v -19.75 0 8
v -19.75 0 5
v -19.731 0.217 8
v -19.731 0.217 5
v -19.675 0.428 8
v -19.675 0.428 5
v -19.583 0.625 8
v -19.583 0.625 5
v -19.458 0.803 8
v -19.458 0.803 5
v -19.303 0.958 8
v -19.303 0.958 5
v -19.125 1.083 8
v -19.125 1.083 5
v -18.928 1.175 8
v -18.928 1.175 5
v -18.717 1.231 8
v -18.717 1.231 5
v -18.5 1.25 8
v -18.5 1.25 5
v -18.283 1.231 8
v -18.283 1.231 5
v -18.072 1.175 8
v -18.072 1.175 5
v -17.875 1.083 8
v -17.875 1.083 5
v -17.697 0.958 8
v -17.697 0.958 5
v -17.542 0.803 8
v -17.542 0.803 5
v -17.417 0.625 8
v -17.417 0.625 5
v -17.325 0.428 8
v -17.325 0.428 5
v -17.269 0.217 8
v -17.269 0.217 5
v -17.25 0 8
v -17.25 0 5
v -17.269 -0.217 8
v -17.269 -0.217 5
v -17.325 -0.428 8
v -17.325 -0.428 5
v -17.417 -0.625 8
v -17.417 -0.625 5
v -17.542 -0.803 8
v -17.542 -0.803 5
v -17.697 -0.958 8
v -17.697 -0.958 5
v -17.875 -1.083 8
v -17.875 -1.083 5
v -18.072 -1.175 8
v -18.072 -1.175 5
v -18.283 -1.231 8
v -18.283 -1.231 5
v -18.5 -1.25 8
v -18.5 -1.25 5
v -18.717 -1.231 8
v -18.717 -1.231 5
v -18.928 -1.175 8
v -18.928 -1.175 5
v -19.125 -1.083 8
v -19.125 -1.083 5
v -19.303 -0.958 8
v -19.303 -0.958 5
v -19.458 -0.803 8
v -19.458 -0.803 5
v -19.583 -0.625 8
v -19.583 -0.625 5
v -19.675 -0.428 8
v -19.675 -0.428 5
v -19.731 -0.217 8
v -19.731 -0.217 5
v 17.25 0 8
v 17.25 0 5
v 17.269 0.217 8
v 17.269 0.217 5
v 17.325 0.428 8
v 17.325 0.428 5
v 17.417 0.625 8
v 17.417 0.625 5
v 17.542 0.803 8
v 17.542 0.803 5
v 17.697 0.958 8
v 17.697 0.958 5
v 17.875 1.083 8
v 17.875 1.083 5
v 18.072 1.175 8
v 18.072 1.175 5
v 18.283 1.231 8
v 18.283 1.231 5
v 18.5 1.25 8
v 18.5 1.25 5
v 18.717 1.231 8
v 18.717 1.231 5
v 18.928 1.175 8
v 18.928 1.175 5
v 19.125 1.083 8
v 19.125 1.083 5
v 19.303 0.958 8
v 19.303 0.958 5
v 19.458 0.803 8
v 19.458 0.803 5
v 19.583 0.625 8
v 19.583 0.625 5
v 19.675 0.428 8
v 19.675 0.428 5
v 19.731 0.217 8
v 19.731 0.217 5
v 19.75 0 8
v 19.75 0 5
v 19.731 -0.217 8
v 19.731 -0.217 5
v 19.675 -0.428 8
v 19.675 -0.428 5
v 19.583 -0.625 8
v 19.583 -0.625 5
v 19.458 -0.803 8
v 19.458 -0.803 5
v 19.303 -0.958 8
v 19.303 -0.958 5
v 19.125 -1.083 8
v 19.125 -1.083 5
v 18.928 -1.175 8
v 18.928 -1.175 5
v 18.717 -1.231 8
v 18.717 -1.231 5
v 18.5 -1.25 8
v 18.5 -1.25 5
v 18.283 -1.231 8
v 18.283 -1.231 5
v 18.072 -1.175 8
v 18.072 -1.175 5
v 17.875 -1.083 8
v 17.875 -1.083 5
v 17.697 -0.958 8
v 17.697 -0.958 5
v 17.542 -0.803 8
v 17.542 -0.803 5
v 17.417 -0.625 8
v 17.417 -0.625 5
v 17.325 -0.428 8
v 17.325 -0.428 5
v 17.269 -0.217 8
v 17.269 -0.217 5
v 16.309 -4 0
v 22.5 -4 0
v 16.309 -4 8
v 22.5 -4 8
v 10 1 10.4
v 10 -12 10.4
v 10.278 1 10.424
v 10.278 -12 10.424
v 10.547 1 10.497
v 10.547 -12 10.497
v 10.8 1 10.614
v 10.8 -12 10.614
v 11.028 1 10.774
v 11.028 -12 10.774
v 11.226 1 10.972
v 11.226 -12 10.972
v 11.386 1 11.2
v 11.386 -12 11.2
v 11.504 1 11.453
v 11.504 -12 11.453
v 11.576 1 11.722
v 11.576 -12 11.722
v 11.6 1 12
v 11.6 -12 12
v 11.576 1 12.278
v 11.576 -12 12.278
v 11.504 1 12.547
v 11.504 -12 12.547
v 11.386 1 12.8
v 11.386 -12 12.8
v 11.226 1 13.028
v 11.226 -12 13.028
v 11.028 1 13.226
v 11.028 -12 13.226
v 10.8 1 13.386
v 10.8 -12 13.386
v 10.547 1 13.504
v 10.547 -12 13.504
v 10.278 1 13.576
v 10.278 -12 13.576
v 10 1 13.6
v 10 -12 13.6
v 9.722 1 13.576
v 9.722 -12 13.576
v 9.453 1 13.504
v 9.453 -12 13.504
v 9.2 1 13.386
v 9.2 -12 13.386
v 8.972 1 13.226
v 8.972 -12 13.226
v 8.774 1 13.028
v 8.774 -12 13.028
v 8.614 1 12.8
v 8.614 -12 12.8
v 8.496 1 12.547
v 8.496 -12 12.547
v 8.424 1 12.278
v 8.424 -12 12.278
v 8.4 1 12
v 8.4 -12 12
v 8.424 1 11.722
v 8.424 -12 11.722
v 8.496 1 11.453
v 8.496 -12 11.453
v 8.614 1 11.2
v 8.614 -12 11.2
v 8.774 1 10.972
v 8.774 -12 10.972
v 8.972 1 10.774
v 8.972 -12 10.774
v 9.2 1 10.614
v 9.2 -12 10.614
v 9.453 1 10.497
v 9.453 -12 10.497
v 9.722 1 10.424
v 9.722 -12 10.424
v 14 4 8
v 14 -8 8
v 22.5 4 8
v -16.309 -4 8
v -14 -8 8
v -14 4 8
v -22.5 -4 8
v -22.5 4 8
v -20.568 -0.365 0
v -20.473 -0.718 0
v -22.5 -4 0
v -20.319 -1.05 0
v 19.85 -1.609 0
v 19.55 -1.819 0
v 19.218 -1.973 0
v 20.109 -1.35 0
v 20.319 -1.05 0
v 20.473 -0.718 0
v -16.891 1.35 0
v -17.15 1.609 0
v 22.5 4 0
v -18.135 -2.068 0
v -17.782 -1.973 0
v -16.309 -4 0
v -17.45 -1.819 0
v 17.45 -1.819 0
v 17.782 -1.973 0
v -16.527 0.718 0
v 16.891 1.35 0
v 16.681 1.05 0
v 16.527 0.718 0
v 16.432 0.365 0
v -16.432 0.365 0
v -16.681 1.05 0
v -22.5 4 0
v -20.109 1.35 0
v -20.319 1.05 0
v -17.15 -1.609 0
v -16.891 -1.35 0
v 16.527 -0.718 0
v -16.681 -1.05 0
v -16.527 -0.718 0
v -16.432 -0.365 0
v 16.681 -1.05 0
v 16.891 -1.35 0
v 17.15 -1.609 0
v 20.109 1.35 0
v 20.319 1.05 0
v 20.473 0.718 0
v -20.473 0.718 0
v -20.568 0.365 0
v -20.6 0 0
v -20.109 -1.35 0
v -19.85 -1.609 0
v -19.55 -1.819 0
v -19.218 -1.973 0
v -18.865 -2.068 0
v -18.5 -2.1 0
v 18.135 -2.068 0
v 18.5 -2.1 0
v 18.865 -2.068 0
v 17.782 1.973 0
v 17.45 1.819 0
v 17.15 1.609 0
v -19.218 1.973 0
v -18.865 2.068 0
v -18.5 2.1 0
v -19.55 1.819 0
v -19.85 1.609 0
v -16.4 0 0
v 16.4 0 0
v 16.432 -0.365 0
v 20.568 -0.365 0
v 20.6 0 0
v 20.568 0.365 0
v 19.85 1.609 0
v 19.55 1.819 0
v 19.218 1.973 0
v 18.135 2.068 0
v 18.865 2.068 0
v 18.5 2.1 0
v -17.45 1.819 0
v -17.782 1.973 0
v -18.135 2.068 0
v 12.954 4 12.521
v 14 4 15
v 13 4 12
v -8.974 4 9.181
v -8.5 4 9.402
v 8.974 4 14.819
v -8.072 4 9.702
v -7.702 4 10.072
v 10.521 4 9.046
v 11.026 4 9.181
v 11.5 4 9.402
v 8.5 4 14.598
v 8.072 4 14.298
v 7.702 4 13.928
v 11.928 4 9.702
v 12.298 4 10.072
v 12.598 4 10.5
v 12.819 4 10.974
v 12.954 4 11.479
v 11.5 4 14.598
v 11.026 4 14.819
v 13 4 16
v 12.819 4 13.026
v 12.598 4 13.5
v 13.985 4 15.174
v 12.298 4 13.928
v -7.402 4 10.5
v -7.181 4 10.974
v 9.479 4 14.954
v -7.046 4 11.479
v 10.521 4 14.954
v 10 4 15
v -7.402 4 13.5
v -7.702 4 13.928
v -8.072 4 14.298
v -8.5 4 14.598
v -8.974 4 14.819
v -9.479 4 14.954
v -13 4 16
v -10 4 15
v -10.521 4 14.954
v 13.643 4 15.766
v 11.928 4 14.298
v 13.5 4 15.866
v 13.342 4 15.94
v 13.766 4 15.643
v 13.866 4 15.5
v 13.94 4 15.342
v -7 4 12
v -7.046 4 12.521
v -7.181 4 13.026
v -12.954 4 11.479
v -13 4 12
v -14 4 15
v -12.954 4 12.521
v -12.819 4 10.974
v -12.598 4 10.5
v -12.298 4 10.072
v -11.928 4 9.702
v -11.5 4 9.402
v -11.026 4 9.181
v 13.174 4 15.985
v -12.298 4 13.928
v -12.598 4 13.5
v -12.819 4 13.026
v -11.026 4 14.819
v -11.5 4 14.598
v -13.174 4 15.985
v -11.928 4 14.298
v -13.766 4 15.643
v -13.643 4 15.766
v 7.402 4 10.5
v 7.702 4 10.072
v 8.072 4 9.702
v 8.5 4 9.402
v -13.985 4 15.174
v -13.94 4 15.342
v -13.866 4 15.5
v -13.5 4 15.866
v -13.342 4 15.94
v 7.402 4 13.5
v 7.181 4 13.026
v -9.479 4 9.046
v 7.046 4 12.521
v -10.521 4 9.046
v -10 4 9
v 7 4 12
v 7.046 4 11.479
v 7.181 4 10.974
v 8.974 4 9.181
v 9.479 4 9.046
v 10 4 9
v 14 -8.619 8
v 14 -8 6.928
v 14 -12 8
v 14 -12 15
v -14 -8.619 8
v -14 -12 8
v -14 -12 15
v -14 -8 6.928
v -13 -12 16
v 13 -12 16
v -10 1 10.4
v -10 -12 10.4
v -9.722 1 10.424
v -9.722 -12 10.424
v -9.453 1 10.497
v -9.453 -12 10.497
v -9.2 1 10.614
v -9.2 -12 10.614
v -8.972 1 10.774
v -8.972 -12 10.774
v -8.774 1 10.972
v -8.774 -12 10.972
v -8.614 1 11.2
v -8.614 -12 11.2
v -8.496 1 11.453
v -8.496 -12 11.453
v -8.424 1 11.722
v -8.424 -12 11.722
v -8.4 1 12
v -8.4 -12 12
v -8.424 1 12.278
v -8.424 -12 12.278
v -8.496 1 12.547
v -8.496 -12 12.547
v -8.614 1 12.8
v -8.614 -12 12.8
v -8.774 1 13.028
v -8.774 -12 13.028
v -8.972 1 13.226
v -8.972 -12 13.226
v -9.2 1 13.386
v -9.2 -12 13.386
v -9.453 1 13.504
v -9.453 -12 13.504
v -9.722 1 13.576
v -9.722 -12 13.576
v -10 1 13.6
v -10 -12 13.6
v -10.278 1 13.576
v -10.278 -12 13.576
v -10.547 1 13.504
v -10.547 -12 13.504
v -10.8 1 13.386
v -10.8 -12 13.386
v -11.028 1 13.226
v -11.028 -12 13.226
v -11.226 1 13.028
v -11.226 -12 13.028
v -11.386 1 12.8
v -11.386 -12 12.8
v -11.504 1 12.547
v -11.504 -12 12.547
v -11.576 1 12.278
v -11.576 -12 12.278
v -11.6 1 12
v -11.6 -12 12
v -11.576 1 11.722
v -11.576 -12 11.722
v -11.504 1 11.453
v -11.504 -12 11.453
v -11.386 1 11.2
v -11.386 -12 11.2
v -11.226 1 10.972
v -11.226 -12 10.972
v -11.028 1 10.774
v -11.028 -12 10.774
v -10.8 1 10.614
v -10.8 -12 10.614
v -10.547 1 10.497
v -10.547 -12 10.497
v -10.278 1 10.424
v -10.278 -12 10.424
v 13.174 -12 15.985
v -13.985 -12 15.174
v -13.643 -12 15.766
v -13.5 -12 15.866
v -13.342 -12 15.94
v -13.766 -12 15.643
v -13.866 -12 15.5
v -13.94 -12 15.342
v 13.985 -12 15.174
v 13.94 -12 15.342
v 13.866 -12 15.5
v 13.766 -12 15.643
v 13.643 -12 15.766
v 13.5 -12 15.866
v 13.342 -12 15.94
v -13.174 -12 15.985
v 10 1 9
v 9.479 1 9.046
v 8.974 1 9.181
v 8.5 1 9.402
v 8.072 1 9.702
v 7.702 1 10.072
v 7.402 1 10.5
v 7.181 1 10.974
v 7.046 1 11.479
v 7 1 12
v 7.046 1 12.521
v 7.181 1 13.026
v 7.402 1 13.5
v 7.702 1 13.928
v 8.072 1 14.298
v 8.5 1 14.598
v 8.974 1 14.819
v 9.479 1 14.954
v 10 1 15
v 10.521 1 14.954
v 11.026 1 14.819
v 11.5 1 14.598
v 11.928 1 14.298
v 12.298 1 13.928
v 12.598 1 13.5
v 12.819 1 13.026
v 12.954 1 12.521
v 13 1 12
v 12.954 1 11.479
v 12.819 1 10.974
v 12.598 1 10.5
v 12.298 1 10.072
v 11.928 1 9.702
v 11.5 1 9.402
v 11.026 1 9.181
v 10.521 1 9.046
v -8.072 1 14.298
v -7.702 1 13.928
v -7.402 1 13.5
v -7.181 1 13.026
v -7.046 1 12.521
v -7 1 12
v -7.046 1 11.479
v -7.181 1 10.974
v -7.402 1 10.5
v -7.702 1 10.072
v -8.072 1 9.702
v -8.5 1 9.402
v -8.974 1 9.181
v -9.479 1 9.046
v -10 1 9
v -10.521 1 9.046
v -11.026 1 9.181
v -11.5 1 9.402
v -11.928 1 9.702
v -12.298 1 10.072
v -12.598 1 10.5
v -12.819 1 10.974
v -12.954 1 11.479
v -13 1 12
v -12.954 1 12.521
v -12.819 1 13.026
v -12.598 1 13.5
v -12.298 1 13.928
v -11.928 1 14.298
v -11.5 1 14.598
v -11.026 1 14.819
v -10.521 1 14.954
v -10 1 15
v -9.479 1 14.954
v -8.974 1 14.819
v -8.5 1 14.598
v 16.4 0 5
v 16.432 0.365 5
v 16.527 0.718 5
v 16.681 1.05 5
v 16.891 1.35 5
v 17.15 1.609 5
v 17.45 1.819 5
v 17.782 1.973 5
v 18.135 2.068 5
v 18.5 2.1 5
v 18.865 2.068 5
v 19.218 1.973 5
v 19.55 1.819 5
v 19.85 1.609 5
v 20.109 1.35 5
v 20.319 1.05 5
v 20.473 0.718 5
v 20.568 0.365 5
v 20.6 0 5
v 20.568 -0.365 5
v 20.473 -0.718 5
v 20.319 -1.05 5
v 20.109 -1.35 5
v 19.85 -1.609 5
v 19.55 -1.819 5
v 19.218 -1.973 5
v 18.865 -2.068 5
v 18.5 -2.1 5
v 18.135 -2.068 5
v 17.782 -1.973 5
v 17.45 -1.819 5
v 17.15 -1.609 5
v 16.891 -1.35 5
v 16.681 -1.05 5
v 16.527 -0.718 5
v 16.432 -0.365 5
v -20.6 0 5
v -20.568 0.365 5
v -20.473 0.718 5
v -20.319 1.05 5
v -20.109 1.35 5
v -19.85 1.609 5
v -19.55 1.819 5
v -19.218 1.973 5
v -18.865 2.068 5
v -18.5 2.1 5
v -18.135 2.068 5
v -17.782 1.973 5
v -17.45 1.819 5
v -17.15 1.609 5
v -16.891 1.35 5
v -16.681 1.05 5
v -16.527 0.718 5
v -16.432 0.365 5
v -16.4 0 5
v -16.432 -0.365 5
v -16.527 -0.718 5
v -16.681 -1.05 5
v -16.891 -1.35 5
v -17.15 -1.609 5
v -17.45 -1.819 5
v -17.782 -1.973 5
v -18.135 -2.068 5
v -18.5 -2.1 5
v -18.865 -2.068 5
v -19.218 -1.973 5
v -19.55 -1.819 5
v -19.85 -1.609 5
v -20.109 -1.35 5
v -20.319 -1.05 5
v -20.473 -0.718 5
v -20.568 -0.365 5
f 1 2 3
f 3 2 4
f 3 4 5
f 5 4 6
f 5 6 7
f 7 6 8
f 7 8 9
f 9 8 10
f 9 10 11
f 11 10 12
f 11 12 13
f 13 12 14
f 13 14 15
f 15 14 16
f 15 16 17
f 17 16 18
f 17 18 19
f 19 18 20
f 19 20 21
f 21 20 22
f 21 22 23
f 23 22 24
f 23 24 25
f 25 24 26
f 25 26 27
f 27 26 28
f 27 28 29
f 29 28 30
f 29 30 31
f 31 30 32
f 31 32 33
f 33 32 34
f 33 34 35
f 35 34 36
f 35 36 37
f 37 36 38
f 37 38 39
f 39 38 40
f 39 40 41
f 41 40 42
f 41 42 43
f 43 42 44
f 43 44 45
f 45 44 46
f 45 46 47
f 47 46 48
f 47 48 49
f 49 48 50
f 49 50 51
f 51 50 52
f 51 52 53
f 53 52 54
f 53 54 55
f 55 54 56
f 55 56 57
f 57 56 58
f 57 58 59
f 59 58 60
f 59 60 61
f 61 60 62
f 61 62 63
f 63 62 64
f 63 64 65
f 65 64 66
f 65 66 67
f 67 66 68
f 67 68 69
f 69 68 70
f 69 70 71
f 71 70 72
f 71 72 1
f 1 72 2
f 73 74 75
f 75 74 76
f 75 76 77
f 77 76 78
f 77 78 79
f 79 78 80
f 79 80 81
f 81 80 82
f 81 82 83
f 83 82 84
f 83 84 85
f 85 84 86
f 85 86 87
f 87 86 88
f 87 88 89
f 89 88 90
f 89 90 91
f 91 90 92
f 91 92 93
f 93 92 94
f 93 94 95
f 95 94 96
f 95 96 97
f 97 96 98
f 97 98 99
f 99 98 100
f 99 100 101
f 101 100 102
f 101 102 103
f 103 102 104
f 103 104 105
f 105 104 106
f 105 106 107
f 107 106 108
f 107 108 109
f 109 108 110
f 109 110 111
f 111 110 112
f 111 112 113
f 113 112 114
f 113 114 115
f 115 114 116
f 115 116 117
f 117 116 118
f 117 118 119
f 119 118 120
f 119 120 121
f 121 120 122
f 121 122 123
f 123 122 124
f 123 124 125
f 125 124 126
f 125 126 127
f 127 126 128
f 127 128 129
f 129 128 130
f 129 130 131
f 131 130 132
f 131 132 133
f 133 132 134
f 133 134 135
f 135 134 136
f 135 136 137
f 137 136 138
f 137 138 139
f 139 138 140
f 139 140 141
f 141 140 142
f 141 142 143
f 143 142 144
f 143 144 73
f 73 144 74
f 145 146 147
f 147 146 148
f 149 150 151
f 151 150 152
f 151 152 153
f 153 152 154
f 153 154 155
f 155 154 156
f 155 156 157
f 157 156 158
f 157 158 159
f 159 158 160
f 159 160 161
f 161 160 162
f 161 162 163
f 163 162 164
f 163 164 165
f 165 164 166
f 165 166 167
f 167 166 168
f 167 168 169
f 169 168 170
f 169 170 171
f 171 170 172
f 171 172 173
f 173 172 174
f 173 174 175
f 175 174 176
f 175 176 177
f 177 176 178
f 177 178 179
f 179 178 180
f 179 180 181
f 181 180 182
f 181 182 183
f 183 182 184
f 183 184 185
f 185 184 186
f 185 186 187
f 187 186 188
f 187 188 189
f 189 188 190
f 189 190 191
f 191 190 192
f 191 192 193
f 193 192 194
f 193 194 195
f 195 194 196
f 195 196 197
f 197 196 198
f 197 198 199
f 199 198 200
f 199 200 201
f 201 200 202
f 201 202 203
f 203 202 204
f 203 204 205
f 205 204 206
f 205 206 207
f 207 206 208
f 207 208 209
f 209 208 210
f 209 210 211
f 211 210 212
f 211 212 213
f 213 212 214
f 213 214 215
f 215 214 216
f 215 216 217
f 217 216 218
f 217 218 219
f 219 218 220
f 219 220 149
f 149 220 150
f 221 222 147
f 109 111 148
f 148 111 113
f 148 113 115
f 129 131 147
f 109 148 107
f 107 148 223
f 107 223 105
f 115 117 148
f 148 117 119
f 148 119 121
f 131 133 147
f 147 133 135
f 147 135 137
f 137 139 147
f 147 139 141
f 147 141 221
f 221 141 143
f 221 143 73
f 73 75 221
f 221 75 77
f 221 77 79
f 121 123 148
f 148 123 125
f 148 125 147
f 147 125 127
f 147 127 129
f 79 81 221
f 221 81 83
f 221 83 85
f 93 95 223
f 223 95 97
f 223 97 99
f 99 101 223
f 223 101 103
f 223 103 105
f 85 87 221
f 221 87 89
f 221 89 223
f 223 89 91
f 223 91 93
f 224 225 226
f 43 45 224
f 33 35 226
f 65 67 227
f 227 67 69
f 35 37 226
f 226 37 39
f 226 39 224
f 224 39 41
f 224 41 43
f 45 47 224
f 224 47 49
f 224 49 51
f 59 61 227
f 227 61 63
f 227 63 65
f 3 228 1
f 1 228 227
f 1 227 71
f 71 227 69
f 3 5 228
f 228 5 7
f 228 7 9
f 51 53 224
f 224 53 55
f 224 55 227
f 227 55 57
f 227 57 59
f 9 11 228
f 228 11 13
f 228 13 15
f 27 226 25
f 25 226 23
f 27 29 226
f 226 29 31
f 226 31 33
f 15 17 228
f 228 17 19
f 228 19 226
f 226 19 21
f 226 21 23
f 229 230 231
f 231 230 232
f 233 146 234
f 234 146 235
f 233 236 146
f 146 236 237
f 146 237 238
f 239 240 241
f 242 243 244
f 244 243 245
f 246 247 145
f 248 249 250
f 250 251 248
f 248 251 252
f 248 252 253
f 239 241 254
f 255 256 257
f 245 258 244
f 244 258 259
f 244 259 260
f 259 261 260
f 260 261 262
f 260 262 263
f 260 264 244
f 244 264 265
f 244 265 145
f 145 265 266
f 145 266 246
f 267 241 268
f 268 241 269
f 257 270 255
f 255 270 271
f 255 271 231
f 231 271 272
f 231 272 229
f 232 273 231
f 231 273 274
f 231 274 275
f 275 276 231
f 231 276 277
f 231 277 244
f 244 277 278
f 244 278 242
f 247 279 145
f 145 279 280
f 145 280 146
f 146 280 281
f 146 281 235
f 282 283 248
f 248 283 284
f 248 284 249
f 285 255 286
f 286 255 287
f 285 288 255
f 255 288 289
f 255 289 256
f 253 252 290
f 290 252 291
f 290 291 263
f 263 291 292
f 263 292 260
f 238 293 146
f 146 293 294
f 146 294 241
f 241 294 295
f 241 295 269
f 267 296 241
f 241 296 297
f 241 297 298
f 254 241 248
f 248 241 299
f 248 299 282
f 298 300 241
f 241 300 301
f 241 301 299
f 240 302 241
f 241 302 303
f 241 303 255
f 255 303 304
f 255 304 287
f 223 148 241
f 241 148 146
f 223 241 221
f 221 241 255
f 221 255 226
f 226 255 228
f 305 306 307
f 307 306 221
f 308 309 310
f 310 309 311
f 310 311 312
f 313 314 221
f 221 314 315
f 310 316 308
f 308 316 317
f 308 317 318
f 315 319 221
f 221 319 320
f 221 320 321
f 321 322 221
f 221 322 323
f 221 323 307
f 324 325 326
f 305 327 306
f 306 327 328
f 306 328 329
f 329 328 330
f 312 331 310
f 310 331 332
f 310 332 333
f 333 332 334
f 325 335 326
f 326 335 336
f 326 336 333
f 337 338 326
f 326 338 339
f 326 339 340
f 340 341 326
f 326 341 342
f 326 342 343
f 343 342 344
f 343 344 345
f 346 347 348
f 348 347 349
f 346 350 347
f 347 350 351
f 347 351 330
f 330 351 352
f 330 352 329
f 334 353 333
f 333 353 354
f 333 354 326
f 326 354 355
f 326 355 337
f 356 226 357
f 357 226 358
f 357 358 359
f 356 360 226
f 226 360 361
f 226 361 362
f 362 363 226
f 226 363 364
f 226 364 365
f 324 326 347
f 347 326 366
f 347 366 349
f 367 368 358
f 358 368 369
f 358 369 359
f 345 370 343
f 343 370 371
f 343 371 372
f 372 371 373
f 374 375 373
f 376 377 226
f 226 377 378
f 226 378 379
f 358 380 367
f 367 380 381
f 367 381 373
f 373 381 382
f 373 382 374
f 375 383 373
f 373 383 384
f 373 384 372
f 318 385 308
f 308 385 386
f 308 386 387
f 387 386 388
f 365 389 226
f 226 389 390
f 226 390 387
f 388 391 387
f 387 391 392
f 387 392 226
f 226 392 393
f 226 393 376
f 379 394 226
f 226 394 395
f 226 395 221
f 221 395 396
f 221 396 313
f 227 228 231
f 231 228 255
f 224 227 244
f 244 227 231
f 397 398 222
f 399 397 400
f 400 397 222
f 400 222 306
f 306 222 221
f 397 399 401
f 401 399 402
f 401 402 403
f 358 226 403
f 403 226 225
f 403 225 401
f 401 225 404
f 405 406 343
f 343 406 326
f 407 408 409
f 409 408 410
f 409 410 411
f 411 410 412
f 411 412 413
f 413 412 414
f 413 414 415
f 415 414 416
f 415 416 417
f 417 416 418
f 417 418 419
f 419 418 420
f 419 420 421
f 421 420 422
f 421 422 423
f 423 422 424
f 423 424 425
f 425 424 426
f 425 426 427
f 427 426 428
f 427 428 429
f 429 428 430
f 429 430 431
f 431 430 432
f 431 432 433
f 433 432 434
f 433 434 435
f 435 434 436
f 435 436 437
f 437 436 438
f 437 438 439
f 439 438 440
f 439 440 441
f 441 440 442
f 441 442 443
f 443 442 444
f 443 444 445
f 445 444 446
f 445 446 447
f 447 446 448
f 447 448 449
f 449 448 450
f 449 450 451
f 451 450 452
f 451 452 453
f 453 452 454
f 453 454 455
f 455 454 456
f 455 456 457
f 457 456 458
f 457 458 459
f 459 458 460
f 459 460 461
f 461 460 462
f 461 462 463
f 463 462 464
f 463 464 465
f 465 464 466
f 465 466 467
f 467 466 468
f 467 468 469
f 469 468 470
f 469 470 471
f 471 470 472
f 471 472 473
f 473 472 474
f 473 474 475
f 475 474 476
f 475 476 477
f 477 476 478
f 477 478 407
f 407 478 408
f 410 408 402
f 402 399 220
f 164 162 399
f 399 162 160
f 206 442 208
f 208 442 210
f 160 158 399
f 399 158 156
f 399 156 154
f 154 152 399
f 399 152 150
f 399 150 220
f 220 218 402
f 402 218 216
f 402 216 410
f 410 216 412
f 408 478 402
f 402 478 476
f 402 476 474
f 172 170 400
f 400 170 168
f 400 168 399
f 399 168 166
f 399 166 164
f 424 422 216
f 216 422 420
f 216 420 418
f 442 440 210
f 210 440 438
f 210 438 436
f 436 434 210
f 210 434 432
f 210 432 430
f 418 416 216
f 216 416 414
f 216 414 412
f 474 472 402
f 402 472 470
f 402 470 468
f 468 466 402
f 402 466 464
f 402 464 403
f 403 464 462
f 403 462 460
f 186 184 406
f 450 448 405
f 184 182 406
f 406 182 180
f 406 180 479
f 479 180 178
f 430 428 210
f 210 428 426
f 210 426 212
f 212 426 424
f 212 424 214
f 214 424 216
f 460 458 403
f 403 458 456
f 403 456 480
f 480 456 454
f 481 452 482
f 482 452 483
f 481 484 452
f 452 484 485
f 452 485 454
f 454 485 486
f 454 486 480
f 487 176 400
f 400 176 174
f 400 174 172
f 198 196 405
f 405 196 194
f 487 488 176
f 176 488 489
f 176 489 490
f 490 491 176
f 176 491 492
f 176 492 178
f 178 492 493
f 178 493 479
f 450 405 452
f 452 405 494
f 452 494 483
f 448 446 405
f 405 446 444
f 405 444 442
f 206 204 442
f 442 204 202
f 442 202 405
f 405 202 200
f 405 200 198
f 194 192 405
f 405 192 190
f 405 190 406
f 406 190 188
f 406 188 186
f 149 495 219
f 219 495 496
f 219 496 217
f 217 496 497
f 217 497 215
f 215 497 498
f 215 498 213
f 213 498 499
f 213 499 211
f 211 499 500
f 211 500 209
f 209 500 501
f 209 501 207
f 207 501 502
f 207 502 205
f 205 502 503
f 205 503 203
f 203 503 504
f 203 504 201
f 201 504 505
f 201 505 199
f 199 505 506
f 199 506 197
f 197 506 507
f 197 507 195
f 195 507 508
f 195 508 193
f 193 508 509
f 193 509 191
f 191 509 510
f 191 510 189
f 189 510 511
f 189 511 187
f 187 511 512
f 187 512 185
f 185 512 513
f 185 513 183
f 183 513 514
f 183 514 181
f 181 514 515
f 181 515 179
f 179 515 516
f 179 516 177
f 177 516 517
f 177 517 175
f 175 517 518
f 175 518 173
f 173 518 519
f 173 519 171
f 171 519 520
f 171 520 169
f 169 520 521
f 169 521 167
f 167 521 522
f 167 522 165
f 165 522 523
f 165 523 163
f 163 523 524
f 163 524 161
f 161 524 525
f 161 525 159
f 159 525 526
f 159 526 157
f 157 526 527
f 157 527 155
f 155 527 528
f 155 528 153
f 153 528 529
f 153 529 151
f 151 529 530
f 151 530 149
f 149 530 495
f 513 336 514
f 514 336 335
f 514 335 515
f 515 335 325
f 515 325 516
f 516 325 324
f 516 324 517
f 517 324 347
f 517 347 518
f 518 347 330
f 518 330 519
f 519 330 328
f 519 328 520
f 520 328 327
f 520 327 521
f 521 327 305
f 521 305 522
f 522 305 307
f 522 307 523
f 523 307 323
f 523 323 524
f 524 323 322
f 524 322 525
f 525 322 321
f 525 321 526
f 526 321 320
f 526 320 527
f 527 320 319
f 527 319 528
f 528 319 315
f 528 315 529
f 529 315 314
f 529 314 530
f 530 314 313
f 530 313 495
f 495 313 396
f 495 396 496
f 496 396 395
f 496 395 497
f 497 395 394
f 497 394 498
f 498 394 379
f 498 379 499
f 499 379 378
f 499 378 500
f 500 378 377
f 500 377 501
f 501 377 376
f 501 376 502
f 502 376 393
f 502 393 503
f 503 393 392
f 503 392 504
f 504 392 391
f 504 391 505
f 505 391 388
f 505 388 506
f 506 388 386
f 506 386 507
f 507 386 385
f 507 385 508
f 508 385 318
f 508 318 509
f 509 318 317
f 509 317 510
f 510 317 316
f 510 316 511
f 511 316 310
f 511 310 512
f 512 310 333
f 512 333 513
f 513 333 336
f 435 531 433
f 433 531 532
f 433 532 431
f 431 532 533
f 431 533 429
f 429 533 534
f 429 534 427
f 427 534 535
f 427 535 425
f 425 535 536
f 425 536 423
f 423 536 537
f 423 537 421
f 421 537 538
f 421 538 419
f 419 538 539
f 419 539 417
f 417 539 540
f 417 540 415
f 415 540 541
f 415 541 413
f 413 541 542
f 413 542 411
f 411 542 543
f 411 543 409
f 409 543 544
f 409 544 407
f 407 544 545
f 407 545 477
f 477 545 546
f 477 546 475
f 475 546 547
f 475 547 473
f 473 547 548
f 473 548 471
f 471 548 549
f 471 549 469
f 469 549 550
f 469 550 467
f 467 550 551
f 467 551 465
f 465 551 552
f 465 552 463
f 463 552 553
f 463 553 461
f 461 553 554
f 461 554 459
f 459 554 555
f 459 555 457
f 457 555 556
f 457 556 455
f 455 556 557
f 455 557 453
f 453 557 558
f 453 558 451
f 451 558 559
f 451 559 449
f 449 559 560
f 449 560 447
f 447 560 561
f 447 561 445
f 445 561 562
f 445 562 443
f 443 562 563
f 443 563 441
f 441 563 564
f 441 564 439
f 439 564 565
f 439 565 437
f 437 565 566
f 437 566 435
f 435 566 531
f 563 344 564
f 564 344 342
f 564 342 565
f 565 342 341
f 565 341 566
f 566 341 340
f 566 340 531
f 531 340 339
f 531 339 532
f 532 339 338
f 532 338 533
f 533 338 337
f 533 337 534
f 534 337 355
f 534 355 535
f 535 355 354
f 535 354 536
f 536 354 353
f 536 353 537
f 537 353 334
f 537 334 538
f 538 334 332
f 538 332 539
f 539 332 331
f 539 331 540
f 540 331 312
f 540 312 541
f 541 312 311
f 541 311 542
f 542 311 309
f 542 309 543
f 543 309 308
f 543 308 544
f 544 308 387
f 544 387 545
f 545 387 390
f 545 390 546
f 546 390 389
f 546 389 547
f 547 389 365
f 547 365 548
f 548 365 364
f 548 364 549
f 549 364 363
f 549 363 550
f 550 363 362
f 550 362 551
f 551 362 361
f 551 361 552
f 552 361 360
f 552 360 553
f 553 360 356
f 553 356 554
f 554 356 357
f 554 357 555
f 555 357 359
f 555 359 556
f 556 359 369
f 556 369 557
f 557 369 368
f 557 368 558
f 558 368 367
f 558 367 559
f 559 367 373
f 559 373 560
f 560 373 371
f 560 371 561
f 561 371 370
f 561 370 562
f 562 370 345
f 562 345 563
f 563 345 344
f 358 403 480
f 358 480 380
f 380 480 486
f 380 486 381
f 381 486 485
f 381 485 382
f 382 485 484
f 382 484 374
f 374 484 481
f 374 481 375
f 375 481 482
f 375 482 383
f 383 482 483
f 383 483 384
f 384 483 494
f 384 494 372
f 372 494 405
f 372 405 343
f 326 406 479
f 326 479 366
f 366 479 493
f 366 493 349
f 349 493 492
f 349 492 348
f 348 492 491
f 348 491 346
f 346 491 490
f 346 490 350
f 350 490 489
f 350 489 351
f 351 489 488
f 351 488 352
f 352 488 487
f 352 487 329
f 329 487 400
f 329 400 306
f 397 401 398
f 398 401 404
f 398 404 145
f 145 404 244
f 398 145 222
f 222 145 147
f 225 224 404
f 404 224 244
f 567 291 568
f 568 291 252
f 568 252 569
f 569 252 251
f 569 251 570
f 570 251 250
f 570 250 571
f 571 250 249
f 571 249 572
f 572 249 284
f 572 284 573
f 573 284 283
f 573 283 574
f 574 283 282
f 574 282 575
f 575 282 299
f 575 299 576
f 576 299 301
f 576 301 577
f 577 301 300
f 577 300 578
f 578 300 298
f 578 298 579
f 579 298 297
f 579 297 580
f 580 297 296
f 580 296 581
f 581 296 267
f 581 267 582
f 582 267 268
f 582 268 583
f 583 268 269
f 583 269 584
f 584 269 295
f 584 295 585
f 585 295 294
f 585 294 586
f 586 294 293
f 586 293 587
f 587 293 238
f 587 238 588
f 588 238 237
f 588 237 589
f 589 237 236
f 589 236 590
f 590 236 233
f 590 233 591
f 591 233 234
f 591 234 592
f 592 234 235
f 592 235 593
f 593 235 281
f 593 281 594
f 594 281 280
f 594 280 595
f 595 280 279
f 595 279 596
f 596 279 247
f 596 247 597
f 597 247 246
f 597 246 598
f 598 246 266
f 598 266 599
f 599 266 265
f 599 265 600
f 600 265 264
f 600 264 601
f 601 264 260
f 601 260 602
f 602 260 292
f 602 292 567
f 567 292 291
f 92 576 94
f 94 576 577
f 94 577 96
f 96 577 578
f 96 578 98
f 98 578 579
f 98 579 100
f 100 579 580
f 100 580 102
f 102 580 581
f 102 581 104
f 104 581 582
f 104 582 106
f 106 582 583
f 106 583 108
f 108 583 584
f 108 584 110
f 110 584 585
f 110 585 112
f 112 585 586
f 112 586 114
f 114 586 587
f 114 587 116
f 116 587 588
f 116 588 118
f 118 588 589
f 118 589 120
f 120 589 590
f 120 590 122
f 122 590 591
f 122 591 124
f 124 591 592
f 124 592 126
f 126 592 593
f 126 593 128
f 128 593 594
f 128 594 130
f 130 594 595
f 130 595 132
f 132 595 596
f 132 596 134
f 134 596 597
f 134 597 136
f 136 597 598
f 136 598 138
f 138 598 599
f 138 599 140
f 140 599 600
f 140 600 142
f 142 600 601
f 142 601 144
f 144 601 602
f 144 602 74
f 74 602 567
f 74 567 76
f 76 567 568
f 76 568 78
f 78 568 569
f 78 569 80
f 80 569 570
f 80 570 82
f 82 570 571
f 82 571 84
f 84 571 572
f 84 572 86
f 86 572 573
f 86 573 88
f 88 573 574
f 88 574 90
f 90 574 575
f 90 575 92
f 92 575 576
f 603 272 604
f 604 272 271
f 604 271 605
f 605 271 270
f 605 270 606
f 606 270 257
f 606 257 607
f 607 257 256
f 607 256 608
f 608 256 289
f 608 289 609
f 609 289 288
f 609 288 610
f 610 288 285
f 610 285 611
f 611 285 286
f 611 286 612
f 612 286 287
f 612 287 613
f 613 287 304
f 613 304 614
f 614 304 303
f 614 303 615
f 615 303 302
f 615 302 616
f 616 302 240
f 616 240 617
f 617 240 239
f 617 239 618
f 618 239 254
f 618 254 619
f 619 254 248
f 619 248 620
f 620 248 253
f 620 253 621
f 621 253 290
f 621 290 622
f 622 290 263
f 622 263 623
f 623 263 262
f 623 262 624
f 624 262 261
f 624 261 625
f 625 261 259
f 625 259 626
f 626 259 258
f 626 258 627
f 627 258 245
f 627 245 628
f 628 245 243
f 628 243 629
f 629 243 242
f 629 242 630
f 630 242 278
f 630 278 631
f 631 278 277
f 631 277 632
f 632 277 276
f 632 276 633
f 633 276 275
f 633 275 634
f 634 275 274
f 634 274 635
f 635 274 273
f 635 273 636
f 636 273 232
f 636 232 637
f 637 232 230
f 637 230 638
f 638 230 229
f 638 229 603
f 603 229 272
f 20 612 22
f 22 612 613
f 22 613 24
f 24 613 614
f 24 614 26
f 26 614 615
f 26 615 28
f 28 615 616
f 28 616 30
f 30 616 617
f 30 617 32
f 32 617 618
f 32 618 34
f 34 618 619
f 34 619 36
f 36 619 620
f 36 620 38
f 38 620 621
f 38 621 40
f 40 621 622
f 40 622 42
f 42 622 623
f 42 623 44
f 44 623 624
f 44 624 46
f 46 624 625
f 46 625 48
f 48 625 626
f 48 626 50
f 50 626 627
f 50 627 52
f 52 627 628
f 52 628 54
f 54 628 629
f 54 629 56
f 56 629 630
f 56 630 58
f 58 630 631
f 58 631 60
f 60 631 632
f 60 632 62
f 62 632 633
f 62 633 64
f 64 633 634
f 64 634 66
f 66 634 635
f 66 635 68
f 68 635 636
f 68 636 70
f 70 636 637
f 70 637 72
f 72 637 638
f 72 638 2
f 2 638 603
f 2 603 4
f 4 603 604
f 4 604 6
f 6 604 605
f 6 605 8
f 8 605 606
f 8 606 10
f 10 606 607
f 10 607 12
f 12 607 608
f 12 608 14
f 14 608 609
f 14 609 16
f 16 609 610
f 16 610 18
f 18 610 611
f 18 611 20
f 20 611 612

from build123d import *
from OCP.BRepFilletAPI import BRepFilletAPI_MakeChamfer

# Parameters (mm, degrees)
SKETCH_1_W           = 45
SKETCH_1_H           = 8
SKETCH_1_R           = 1.25
EXTRUDE_1_DEPTH      = 8
EXTRUDE_2_DEPTH      = 8
EXTRUDE_2_DEPTH_BACK = 8
SKETCH_2_W           = 28
SKETCH_2_H           = 8
SKETCH_2_R           = 1.6
SKETCH_4_R           = 3
CUT_EXTRUDE_2_DEPTH  = 3
FILLET_1_R           = 1
CHAMFER_1_SIZE2      = 8
CHAMFER_1_SIZE       = 4.618802154
CHAMFER_2_SIZE       = 4
CHAMFER_2_SIZE2      = 2.309401077
SKETCH_5_R           = 2.1
CUT_EXTRUDE_3_DEPTH  = 5


with BuildPart() as part:
    # ｽｹｯﾁ1 → ﾎﾞｽ - 押し出し1 (new body)
    with BuildSketch(Plane.XY):
        Rectangle(SKETCH_1_W, SKETCH_1_H)
        with Locations((-18.5, 0)):
            Circle(SKETCH_1_R, mode=Mode.SUBTRACT)
        with Locations(Location((18.5, 0, 0), (0, 0, 180))):
            Circle(SKETCH_1_R, mode=Mode.SUBTRACT)
    extrude(amount=EXTRUDE_1_DEPTH)

    # ｽｹｯﾁ2 → ﾎﾞｽ - 押し出し2 (add, two sides: drawn at the far end of the back side and taken through both)
    with BuildSketch(Plane.XZ.offset(4).offset(-EXTRUDE_2_DEPTH_BACK)):
        with Locations((0, 12)):
            Rectangle(SKETCH_2_W, SKETCH_2_H)
        with Locations(Location((-10, 12, 0), (0, 0, 270))):
            Circle(SKETCH_2_R, mode=Mode.SUBTRACT)
        with Locations(Location((10, 12, 0), (0, 0, 90))):
            Circle(SKETCH_2_R, mode=Mode.SUBTRACT)
    extrude(amount=EXTRUDE_2_DEPTH + EXTRUDE_2_DEPTH_BACK)

    # ｽｹｯﾁ4 → ｶｯﾄ - 押し出し2 (cut)
    with BuildSketch(Plane(origin=(0, 4, 0), x_dir=(1, 0, 0), z_dir=(0, 1, 0))):
        with Locations(Location((10, -12, 0), (0, 0, 270))):
            Circle(SKETCH_4_R)
        with Locations(Location((-10, -12, 0), (0, 0, 90))):
            Circle(SKETCH_4_R)
    extrude(amount=-CUT_EXTRUDE_2_DEPTH, mode=Mode.SUBTRACT)

    # ﾌｨﾚｯﾄ1
    fillet_1_edges = [part.edges().sort_by_distance(p)[0] for p in [
        (14, -4, 16),
        (-14, -4, 16),
    ]]
    fillet(fillet_1_edges, radius=FILLET_1_R)

    # 面取り1
    chamfer_1_edges = [part.edges().sort_by_distance(p)[0] for p in [
        (0, -4, 8),
    ]]
    chamfer_1_side = [part.faces().sort_by_distance(p)[0] for p in [
        (0, -4.092376043, 8),
    ]]
    chamfer(chamfer_1_edges, length=CHAMFER_1_SIZE - 0.0001, length2=CHAMFER_1_SIZE2 - 0.0001, reference=chamfer_1_side[0])  # a hair under: the kernel refuses the full size

    # 面取り2: one chamfer whose edges measure the first distance from different faces: ONE call of the kernel's chamfer builder (chamfer() names one face for all edges)
    chamfer_2_edges_1 = [part.edges().sort_by_distance(p)[0] for p in [
        (-14, -4, 4.00005),
    ]]
    chamfer_2_side_1 = [part.faces().sort_by_distance(p)[0] for p in [
        (-14, -4.217995396, 10.626834142),
    ]]
    chamfer_2_edges_2 = [part.edges().sort_by_distance(p)[0] for p in [
        (14, -4, 4.00005),
    ]]
    chamfer_2_side_2 = [part.faces().sort_by_distance(p)[0] for p in [
        (14, -4.217995396, 10.626834142),
    ]]
    chamfer_2 = BRepFilletAPI_MakeChamfer(part.part.solid().wrapped)
    for e in chamfer_2_edges_1:
        chamfer_2.Add(CHAMFER_2_SIZE, CHAMFER_2_SIZE2, e.wrapped, chamfer_2_side_1[0].wrapped)  # the first distance lies on this face
    for e in chamfer_2_edges_2:
        chamfer_2.Add(CHAMFER_2_SIZE, CHAMFER_2_SIZE2, e.wrapped, chamfer_2_side_2[0].wrapped)  # the first distance lies on this face
    add(Compound.cast(chamfer_2.Shape()), mode=Mode.REPLACE)

    # ｽｹｯﾁ5 → ｶｯﾄ - 押し出し3 (cut)
    with BuildSketch(Plane(origin=(0, 0, 0), x_dir=(-1, 0, 0), z_dir=(0, 0, -1))):
        with Locations((-18.5, 0)):
            Circle(SKETCH_5_R)
        with Locations((18.5, 0)):
            Circle(SKETCH_5_R)
    extrude(amount=-CUT_EXTRUDE_3_DEPTH, mode=Mode.SUBTRACT)


solid = part.part
